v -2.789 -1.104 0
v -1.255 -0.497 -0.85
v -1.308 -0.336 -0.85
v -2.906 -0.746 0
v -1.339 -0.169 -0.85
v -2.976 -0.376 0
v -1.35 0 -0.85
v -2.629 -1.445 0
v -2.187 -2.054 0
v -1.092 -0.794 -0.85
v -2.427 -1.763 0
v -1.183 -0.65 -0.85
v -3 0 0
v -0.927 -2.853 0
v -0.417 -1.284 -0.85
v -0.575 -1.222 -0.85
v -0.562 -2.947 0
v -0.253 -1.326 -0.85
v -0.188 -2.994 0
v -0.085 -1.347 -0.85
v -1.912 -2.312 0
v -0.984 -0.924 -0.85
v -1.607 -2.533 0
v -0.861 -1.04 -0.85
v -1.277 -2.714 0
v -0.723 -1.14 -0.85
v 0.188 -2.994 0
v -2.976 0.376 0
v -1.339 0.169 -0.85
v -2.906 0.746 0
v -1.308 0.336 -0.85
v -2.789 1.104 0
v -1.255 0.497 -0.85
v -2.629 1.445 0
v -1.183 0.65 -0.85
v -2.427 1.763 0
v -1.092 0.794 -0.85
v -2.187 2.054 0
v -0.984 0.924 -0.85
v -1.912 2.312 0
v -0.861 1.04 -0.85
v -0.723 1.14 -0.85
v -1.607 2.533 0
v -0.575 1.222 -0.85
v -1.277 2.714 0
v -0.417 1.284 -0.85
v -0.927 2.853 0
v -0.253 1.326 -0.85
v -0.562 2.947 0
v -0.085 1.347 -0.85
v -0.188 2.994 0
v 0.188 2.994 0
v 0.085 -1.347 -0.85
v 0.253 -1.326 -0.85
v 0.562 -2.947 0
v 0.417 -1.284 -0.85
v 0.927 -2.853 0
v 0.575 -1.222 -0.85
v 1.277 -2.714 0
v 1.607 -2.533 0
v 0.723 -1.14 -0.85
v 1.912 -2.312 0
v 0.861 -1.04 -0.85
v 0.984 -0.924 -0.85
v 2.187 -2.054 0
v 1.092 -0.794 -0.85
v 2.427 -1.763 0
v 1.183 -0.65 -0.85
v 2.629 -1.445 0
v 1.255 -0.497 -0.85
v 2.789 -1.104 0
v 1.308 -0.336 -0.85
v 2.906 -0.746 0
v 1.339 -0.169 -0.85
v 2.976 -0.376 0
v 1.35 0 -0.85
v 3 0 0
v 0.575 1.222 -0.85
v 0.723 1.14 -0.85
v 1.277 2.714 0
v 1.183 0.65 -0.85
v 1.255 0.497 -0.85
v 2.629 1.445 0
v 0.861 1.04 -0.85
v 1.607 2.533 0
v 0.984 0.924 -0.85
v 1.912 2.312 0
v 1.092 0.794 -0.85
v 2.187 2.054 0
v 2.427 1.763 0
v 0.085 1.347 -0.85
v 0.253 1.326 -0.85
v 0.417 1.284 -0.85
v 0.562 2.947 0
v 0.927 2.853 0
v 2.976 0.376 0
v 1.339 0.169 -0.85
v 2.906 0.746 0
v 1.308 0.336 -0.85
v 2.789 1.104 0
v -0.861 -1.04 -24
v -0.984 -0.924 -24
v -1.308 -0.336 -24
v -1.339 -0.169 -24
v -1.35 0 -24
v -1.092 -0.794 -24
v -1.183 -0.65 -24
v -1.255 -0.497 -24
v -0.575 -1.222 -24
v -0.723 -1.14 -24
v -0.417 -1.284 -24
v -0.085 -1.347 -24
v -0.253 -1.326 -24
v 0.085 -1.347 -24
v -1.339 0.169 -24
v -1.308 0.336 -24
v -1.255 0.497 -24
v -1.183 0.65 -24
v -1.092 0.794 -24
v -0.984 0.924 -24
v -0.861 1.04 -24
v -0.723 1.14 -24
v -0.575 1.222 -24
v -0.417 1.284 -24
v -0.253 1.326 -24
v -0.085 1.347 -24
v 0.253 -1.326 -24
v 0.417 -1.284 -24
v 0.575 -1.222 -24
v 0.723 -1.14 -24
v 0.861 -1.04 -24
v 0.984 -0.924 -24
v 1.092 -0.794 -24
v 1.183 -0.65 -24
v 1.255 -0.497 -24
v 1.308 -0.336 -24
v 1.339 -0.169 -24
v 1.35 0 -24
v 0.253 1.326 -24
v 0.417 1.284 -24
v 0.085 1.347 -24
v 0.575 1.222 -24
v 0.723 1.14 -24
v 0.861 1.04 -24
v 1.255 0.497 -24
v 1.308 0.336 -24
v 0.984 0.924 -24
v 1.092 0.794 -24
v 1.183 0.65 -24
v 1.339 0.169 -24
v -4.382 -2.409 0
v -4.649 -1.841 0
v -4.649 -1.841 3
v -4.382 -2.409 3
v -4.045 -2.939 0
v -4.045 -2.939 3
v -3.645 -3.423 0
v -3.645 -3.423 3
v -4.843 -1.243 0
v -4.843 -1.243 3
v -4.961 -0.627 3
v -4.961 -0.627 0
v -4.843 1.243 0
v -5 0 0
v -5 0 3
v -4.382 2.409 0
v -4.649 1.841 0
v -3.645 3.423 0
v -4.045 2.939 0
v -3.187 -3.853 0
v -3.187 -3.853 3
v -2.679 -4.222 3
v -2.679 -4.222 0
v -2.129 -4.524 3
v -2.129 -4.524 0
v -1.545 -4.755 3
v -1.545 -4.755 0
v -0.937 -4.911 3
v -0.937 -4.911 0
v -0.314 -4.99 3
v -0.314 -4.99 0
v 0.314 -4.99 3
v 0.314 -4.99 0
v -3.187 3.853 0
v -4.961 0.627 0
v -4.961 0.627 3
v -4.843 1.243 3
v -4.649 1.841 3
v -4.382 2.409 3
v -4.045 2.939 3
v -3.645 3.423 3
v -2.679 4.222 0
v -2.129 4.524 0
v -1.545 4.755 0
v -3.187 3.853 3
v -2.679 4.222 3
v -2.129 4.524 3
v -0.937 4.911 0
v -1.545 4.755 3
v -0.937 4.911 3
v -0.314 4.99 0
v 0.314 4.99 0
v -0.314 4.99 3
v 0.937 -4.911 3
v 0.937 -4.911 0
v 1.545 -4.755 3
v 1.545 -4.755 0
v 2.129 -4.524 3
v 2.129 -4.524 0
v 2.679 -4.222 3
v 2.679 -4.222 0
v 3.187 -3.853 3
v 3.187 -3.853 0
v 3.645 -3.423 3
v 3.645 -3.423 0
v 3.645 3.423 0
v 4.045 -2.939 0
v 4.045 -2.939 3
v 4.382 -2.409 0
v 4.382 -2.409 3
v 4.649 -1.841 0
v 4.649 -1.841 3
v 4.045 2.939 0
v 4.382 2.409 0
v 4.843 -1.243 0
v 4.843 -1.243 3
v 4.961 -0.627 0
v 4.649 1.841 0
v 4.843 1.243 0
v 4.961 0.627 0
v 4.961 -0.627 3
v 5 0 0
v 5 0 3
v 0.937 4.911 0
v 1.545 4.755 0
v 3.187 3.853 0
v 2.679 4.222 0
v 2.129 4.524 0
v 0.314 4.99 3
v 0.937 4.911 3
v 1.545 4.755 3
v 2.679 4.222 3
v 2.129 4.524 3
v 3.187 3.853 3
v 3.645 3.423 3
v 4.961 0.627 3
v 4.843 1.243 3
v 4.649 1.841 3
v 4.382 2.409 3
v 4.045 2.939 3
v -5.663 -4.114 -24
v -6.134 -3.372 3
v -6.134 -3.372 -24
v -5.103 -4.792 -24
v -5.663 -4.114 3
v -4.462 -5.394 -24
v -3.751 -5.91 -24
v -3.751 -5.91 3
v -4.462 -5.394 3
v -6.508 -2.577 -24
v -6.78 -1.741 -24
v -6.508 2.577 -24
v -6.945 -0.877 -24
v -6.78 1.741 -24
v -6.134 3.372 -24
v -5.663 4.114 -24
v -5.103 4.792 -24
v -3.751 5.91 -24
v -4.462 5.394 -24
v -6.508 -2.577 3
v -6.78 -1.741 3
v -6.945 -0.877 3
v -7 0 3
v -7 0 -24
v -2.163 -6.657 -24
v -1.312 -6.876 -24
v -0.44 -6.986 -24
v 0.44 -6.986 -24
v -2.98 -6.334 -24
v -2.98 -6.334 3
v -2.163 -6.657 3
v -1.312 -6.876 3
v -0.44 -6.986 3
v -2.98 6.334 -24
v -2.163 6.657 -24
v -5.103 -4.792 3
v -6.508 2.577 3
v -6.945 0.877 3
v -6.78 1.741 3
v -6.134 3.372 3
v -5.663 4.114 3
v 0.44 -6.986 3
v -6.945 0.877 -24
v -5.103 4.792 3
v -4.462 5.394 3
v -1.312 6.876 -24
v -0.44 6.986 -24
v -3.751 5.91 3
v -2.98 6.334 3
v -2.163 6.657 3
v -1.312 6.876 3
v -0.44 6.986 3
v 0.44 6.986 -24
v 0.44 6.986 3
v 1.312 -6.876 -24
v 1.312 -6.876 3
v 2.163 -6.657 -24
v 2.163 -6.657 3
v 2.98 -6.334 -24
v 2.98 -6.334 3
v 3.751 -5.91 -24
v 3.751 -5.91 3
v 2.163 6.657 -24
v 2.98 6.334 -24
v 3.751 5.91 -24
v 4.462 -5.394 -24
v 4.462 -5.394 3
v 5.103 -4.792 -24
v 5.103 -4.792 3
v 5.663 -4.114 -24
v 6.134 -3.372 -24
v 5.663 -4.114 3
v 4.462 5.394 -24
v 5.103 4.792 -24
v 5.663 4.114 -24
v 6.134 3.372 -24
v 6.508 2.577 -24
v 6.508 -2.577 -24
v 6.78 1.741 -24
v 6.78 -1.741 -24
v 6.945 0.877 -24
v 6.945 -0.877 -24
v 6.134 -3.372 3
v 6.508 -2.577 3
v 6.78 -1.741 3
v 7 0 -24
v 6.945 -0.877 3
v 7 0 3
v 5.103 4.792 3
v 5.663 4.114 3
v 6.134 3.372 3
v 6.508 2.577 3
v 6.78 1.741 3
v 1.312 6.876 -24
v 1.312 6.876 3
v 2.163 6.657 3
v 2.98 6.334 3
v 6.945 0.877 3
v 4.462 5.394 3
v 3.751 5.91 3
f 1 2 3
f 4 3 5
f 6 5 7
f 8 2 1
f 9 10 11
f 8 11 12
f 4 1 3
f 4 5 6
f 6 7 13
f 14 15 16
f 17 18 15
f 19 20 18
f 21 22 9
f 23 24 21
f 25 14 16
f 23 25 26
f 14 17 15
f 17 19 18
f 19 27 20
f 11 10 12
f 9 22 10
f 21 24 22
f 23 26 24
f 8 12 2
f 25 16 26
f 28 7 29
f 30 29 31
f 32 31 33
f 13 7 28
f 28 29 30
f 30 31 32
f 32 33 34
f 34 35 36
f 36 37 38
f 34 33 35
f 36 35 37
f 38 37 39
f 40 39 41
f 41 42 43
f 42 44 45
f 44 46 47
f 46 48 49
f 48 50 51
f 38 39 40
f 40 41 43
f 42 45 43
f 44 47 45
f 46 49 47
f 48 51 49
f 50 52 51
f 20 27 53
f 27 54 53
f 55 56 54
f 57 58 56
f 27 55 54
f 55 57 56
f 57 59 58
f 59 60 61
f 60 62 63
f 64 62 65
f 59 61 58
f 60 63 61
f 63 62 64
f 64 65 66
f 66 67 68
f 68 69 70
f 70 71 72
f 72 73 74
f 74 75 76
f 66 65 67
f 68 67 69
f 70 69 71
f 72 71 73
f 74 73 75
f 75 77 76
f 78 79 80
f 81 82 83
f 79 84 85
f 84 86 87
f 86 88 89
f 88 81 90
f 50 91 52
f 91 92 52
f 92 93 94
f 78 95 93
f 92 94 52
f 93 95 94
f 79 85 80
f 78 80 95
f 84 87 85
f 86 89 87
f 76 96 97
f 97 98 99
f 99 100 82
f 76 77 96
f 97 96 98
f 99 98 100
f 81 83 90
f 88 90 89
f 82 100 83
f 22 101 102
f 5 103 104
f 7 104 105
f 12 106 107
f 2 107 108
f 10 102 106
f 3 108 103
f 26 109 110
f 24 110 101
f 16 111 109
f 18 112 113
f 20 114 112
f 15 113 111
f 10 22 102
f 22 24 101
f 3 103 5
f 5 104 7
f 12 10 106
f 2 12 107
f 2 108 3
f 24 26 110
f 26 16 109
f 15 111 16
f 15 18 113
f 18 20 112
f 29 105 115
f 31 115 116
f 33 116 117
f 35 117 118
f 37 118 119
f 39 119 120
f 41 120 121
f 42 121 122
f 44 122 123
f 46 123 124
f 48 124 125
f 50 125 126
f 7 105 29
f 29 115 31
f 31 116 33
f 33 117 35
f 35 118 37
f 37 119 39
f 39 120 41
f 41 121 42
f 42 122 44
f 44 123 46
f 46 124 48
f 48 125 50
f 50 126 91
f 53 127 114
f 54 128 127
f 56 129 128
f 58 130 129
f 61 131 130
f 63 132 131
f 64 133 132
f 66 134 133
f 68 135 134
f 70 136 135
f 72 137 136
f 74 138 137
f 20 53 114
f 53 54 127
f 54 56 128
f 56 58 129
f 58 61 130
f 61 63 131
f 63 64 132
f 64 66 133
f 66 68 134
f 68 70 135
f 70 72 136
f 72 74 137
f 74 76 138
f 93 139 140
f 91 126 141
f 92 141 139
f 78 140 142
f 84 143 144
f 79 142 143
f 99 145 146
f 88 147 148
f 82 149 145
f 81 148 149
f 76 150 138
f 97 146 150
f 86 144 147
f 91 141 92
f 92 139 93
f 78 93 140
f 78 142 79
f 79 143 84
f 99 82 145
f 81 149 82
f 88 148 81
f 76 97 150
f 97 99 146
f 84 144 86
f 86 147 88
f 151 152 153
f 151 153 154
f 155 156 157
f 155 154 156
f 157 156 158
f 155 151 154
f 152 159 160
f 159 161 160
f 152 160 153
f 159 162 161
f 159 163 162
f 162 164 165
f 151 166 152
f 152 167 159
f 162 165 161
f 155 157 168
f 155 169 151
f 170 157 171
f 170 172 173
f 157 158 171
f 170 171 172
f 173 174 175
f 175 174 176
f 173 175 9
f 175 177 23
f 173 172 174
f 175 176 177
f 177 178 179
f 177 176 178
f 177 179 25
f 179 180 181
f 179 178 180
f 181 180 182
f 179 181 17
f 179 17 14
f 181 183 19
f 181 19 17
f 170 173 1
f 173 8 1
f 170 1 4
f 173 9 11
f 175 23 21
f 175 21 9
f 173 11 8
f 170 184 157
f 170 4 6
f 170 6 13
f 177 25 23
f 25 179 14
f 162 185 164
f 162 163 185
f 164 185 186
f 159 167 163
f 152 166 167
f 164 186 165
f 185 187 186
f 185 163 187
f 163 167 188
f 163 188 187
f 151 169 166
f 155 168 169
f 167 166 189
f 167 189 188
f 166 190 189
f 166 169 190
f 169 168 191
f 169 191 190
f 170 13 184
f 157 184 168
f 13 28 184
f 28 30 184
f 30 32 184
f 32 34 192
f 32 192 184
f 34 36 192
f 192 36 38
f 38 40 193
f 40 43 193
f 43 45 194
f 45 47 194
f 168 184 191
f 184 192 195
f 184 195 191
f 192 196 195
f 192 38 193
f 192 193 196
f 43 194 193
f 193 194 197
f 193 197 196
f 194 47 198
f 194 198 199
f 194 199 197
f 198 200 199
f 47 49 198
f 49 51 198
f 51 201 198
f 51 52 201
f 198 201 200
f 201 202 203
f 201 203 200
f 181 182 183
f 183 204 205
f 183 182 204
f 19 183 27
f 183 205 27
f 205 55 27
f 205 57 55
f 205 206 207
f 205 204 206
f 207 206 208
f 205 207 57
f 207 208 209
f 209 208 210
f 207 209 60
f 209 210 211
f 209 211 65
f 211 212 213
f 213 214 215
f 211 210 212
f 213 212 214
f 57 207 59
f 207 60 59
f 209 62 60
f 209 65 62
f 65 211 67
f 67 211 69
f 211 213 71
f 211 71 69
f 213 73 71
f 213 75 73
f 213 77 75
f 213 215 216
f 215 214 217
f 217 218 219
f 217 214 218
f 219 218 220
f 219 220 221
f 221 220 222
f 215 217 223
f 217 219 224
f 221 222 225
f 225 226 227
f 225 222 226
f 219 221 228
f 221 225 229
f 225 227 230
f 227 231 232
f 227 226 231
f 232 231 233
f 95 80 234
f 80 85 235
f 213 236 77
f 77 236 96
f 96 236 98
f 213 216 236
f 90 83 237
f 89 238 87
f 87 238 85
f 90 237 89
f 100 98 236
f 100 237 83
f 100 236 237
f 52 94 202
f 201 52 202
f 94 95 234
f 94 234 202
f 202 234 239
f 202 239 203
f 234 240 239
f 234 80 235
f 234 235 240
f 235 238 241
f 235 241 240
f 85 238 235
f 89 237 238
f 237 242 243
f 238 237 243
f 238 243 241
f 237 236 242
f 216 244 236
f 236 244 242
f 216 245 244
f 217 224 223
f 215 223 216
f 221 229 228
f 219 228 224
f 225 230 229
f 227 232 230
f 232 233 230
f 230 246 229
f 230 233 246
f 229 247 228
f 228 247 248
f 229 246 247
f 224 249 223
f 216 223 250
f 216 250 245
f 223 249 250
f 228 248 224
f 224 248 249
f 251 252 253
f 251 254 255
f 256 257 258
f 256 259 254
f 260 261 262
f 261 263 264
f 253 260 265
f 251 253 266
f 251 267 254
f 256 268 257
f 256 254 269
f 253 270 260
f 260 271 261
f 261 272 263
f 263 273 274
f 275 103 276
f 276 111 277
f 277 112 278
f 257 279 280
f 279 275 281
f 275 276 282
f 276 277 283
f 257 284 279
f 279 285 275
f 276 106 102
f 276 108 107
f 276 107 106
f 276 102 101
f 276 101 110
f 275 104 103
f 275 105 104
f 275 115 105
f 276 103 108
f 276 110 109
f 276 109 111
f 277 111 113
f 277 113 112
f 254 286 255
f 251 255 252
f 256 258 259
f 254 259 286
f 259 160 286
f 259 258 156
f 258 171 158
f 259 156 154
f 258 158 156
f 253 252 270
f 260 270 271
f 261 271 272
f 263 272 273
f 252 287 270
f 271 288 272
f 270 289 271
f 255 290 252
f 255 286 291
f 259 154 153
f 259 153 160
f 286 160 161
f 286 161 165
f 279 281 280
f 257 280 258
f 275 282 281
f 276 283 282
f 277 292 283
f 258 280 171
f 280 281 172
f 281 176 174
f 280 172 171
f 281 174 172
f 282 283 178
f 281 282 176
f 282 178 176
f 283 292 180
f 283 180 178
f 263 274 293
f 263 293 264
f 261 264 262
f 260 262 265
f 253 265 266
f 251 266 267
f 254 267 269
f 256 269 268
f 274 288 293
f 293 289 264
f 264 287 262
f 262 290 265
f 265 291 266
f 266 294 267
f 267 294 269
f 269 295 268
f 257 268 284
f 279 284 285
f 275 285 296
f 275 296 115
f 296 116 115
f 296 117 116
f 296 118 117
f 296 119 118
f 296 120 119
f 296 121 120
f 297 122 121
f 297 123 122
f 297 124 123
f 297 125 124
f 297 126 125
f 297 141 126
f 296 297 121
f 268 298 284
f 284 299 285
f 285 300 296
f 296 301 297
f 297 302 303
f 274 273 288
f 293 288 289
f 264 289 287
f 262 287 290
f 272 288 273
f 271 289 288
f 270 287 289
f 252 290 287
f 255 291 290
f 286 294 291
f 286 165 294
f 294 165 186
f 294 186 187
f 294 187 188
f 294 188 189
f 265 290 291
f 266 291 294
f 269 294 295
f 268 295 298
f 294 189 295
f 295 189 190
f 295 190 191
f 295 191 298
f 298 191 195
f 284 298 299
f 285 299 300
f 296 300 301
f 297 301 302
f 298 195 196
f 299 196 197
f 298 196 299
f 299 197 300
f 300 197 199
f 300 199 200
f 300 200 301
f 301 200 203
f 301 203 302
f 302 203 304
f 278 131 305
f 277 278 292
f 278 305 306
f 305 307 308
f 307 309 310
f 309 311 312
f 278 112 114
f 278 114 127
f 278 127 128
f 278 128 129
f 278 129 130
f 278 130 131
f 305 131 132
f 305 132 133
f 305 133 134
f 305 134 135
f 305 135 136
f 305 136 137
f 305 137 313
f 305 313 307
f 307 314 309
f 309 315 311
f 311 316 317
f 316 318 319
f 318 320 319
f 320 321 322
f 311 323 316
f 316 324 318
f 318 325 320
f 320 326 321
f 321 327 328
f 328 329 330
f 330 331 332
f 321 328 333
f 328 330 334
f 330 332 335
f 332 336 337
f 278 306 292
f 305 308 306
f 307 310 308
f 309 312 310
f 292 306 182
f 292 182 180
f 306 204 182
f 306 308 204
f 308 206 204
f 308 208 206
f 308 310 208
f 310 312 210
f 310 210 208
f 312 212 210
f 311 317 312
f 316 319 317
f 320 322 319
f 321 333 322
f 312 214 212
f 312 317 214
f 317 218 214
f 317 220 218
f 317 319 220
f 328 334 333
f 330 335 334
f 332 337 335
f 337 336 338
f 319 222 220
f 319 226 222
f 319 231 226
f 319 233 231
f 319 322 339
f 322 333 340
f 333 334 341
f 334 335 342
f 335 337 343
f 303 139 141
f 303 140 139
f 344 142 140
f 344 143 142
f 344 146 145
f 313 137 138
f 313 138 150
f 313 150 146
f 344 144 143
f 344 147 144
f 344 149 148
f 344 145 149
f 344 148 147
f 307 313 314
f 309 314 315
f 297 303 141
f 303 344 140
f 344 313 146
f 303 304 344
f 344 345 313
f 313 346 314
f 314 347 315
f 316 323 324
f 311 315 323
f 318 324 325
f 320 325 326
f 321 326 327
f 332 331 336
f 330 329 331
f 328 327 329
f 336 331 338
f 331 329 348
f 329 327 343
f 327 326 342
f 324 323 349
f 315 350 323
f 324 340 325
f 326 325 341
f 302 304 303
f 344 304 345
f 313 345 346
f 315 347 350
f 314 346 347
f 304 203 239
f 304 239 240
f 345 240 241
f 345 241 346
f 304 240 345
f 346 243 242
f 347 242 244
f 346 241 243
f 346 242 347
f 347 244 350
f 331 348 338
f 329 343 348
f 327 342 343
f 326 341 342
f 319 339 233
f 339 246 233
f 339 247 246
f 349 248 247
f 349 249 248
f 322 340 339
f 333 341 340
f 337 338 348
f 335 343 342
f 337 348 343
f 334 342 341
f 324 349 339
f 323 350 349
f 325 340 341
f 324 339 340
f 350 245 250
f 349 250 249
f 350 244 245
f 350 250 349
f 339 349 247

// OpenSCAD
$fn = 50;


difference() {
	union() {
		translate(v = [0, 0, -24.0000000000]) {
			cylinder(h = 27, r = 7.0000000000);
		}
	}
	union() {
		translate(v = [0, 0, 0]) {
			rotate(a = [0, 0, 0]) {
				difference() {
					union() {
						translate(v = [0, 0, -27.0000000000]) {
							cylinder(h = 27, r = 1.0000000000);
						}
						translate(v = [0, 0, -0.8500000000]) {
							cylinder(h = 0.8500000000, r1 = 1.3500000000, r2 = 3.0000000000);
						}
						translate(v = [0, 0, -27.0000000000]) {
							cylinder(h = 27, r = 1.3500000000);
						}
						translate(v = [0, 0, -27.0000000000]) {
							cylinder(h = 27, r = 1.0000000000);
						}
					}
					union();
				}
			}
		}
		#cylinder(h = 3, r = 5.0000000000);
	}
}
